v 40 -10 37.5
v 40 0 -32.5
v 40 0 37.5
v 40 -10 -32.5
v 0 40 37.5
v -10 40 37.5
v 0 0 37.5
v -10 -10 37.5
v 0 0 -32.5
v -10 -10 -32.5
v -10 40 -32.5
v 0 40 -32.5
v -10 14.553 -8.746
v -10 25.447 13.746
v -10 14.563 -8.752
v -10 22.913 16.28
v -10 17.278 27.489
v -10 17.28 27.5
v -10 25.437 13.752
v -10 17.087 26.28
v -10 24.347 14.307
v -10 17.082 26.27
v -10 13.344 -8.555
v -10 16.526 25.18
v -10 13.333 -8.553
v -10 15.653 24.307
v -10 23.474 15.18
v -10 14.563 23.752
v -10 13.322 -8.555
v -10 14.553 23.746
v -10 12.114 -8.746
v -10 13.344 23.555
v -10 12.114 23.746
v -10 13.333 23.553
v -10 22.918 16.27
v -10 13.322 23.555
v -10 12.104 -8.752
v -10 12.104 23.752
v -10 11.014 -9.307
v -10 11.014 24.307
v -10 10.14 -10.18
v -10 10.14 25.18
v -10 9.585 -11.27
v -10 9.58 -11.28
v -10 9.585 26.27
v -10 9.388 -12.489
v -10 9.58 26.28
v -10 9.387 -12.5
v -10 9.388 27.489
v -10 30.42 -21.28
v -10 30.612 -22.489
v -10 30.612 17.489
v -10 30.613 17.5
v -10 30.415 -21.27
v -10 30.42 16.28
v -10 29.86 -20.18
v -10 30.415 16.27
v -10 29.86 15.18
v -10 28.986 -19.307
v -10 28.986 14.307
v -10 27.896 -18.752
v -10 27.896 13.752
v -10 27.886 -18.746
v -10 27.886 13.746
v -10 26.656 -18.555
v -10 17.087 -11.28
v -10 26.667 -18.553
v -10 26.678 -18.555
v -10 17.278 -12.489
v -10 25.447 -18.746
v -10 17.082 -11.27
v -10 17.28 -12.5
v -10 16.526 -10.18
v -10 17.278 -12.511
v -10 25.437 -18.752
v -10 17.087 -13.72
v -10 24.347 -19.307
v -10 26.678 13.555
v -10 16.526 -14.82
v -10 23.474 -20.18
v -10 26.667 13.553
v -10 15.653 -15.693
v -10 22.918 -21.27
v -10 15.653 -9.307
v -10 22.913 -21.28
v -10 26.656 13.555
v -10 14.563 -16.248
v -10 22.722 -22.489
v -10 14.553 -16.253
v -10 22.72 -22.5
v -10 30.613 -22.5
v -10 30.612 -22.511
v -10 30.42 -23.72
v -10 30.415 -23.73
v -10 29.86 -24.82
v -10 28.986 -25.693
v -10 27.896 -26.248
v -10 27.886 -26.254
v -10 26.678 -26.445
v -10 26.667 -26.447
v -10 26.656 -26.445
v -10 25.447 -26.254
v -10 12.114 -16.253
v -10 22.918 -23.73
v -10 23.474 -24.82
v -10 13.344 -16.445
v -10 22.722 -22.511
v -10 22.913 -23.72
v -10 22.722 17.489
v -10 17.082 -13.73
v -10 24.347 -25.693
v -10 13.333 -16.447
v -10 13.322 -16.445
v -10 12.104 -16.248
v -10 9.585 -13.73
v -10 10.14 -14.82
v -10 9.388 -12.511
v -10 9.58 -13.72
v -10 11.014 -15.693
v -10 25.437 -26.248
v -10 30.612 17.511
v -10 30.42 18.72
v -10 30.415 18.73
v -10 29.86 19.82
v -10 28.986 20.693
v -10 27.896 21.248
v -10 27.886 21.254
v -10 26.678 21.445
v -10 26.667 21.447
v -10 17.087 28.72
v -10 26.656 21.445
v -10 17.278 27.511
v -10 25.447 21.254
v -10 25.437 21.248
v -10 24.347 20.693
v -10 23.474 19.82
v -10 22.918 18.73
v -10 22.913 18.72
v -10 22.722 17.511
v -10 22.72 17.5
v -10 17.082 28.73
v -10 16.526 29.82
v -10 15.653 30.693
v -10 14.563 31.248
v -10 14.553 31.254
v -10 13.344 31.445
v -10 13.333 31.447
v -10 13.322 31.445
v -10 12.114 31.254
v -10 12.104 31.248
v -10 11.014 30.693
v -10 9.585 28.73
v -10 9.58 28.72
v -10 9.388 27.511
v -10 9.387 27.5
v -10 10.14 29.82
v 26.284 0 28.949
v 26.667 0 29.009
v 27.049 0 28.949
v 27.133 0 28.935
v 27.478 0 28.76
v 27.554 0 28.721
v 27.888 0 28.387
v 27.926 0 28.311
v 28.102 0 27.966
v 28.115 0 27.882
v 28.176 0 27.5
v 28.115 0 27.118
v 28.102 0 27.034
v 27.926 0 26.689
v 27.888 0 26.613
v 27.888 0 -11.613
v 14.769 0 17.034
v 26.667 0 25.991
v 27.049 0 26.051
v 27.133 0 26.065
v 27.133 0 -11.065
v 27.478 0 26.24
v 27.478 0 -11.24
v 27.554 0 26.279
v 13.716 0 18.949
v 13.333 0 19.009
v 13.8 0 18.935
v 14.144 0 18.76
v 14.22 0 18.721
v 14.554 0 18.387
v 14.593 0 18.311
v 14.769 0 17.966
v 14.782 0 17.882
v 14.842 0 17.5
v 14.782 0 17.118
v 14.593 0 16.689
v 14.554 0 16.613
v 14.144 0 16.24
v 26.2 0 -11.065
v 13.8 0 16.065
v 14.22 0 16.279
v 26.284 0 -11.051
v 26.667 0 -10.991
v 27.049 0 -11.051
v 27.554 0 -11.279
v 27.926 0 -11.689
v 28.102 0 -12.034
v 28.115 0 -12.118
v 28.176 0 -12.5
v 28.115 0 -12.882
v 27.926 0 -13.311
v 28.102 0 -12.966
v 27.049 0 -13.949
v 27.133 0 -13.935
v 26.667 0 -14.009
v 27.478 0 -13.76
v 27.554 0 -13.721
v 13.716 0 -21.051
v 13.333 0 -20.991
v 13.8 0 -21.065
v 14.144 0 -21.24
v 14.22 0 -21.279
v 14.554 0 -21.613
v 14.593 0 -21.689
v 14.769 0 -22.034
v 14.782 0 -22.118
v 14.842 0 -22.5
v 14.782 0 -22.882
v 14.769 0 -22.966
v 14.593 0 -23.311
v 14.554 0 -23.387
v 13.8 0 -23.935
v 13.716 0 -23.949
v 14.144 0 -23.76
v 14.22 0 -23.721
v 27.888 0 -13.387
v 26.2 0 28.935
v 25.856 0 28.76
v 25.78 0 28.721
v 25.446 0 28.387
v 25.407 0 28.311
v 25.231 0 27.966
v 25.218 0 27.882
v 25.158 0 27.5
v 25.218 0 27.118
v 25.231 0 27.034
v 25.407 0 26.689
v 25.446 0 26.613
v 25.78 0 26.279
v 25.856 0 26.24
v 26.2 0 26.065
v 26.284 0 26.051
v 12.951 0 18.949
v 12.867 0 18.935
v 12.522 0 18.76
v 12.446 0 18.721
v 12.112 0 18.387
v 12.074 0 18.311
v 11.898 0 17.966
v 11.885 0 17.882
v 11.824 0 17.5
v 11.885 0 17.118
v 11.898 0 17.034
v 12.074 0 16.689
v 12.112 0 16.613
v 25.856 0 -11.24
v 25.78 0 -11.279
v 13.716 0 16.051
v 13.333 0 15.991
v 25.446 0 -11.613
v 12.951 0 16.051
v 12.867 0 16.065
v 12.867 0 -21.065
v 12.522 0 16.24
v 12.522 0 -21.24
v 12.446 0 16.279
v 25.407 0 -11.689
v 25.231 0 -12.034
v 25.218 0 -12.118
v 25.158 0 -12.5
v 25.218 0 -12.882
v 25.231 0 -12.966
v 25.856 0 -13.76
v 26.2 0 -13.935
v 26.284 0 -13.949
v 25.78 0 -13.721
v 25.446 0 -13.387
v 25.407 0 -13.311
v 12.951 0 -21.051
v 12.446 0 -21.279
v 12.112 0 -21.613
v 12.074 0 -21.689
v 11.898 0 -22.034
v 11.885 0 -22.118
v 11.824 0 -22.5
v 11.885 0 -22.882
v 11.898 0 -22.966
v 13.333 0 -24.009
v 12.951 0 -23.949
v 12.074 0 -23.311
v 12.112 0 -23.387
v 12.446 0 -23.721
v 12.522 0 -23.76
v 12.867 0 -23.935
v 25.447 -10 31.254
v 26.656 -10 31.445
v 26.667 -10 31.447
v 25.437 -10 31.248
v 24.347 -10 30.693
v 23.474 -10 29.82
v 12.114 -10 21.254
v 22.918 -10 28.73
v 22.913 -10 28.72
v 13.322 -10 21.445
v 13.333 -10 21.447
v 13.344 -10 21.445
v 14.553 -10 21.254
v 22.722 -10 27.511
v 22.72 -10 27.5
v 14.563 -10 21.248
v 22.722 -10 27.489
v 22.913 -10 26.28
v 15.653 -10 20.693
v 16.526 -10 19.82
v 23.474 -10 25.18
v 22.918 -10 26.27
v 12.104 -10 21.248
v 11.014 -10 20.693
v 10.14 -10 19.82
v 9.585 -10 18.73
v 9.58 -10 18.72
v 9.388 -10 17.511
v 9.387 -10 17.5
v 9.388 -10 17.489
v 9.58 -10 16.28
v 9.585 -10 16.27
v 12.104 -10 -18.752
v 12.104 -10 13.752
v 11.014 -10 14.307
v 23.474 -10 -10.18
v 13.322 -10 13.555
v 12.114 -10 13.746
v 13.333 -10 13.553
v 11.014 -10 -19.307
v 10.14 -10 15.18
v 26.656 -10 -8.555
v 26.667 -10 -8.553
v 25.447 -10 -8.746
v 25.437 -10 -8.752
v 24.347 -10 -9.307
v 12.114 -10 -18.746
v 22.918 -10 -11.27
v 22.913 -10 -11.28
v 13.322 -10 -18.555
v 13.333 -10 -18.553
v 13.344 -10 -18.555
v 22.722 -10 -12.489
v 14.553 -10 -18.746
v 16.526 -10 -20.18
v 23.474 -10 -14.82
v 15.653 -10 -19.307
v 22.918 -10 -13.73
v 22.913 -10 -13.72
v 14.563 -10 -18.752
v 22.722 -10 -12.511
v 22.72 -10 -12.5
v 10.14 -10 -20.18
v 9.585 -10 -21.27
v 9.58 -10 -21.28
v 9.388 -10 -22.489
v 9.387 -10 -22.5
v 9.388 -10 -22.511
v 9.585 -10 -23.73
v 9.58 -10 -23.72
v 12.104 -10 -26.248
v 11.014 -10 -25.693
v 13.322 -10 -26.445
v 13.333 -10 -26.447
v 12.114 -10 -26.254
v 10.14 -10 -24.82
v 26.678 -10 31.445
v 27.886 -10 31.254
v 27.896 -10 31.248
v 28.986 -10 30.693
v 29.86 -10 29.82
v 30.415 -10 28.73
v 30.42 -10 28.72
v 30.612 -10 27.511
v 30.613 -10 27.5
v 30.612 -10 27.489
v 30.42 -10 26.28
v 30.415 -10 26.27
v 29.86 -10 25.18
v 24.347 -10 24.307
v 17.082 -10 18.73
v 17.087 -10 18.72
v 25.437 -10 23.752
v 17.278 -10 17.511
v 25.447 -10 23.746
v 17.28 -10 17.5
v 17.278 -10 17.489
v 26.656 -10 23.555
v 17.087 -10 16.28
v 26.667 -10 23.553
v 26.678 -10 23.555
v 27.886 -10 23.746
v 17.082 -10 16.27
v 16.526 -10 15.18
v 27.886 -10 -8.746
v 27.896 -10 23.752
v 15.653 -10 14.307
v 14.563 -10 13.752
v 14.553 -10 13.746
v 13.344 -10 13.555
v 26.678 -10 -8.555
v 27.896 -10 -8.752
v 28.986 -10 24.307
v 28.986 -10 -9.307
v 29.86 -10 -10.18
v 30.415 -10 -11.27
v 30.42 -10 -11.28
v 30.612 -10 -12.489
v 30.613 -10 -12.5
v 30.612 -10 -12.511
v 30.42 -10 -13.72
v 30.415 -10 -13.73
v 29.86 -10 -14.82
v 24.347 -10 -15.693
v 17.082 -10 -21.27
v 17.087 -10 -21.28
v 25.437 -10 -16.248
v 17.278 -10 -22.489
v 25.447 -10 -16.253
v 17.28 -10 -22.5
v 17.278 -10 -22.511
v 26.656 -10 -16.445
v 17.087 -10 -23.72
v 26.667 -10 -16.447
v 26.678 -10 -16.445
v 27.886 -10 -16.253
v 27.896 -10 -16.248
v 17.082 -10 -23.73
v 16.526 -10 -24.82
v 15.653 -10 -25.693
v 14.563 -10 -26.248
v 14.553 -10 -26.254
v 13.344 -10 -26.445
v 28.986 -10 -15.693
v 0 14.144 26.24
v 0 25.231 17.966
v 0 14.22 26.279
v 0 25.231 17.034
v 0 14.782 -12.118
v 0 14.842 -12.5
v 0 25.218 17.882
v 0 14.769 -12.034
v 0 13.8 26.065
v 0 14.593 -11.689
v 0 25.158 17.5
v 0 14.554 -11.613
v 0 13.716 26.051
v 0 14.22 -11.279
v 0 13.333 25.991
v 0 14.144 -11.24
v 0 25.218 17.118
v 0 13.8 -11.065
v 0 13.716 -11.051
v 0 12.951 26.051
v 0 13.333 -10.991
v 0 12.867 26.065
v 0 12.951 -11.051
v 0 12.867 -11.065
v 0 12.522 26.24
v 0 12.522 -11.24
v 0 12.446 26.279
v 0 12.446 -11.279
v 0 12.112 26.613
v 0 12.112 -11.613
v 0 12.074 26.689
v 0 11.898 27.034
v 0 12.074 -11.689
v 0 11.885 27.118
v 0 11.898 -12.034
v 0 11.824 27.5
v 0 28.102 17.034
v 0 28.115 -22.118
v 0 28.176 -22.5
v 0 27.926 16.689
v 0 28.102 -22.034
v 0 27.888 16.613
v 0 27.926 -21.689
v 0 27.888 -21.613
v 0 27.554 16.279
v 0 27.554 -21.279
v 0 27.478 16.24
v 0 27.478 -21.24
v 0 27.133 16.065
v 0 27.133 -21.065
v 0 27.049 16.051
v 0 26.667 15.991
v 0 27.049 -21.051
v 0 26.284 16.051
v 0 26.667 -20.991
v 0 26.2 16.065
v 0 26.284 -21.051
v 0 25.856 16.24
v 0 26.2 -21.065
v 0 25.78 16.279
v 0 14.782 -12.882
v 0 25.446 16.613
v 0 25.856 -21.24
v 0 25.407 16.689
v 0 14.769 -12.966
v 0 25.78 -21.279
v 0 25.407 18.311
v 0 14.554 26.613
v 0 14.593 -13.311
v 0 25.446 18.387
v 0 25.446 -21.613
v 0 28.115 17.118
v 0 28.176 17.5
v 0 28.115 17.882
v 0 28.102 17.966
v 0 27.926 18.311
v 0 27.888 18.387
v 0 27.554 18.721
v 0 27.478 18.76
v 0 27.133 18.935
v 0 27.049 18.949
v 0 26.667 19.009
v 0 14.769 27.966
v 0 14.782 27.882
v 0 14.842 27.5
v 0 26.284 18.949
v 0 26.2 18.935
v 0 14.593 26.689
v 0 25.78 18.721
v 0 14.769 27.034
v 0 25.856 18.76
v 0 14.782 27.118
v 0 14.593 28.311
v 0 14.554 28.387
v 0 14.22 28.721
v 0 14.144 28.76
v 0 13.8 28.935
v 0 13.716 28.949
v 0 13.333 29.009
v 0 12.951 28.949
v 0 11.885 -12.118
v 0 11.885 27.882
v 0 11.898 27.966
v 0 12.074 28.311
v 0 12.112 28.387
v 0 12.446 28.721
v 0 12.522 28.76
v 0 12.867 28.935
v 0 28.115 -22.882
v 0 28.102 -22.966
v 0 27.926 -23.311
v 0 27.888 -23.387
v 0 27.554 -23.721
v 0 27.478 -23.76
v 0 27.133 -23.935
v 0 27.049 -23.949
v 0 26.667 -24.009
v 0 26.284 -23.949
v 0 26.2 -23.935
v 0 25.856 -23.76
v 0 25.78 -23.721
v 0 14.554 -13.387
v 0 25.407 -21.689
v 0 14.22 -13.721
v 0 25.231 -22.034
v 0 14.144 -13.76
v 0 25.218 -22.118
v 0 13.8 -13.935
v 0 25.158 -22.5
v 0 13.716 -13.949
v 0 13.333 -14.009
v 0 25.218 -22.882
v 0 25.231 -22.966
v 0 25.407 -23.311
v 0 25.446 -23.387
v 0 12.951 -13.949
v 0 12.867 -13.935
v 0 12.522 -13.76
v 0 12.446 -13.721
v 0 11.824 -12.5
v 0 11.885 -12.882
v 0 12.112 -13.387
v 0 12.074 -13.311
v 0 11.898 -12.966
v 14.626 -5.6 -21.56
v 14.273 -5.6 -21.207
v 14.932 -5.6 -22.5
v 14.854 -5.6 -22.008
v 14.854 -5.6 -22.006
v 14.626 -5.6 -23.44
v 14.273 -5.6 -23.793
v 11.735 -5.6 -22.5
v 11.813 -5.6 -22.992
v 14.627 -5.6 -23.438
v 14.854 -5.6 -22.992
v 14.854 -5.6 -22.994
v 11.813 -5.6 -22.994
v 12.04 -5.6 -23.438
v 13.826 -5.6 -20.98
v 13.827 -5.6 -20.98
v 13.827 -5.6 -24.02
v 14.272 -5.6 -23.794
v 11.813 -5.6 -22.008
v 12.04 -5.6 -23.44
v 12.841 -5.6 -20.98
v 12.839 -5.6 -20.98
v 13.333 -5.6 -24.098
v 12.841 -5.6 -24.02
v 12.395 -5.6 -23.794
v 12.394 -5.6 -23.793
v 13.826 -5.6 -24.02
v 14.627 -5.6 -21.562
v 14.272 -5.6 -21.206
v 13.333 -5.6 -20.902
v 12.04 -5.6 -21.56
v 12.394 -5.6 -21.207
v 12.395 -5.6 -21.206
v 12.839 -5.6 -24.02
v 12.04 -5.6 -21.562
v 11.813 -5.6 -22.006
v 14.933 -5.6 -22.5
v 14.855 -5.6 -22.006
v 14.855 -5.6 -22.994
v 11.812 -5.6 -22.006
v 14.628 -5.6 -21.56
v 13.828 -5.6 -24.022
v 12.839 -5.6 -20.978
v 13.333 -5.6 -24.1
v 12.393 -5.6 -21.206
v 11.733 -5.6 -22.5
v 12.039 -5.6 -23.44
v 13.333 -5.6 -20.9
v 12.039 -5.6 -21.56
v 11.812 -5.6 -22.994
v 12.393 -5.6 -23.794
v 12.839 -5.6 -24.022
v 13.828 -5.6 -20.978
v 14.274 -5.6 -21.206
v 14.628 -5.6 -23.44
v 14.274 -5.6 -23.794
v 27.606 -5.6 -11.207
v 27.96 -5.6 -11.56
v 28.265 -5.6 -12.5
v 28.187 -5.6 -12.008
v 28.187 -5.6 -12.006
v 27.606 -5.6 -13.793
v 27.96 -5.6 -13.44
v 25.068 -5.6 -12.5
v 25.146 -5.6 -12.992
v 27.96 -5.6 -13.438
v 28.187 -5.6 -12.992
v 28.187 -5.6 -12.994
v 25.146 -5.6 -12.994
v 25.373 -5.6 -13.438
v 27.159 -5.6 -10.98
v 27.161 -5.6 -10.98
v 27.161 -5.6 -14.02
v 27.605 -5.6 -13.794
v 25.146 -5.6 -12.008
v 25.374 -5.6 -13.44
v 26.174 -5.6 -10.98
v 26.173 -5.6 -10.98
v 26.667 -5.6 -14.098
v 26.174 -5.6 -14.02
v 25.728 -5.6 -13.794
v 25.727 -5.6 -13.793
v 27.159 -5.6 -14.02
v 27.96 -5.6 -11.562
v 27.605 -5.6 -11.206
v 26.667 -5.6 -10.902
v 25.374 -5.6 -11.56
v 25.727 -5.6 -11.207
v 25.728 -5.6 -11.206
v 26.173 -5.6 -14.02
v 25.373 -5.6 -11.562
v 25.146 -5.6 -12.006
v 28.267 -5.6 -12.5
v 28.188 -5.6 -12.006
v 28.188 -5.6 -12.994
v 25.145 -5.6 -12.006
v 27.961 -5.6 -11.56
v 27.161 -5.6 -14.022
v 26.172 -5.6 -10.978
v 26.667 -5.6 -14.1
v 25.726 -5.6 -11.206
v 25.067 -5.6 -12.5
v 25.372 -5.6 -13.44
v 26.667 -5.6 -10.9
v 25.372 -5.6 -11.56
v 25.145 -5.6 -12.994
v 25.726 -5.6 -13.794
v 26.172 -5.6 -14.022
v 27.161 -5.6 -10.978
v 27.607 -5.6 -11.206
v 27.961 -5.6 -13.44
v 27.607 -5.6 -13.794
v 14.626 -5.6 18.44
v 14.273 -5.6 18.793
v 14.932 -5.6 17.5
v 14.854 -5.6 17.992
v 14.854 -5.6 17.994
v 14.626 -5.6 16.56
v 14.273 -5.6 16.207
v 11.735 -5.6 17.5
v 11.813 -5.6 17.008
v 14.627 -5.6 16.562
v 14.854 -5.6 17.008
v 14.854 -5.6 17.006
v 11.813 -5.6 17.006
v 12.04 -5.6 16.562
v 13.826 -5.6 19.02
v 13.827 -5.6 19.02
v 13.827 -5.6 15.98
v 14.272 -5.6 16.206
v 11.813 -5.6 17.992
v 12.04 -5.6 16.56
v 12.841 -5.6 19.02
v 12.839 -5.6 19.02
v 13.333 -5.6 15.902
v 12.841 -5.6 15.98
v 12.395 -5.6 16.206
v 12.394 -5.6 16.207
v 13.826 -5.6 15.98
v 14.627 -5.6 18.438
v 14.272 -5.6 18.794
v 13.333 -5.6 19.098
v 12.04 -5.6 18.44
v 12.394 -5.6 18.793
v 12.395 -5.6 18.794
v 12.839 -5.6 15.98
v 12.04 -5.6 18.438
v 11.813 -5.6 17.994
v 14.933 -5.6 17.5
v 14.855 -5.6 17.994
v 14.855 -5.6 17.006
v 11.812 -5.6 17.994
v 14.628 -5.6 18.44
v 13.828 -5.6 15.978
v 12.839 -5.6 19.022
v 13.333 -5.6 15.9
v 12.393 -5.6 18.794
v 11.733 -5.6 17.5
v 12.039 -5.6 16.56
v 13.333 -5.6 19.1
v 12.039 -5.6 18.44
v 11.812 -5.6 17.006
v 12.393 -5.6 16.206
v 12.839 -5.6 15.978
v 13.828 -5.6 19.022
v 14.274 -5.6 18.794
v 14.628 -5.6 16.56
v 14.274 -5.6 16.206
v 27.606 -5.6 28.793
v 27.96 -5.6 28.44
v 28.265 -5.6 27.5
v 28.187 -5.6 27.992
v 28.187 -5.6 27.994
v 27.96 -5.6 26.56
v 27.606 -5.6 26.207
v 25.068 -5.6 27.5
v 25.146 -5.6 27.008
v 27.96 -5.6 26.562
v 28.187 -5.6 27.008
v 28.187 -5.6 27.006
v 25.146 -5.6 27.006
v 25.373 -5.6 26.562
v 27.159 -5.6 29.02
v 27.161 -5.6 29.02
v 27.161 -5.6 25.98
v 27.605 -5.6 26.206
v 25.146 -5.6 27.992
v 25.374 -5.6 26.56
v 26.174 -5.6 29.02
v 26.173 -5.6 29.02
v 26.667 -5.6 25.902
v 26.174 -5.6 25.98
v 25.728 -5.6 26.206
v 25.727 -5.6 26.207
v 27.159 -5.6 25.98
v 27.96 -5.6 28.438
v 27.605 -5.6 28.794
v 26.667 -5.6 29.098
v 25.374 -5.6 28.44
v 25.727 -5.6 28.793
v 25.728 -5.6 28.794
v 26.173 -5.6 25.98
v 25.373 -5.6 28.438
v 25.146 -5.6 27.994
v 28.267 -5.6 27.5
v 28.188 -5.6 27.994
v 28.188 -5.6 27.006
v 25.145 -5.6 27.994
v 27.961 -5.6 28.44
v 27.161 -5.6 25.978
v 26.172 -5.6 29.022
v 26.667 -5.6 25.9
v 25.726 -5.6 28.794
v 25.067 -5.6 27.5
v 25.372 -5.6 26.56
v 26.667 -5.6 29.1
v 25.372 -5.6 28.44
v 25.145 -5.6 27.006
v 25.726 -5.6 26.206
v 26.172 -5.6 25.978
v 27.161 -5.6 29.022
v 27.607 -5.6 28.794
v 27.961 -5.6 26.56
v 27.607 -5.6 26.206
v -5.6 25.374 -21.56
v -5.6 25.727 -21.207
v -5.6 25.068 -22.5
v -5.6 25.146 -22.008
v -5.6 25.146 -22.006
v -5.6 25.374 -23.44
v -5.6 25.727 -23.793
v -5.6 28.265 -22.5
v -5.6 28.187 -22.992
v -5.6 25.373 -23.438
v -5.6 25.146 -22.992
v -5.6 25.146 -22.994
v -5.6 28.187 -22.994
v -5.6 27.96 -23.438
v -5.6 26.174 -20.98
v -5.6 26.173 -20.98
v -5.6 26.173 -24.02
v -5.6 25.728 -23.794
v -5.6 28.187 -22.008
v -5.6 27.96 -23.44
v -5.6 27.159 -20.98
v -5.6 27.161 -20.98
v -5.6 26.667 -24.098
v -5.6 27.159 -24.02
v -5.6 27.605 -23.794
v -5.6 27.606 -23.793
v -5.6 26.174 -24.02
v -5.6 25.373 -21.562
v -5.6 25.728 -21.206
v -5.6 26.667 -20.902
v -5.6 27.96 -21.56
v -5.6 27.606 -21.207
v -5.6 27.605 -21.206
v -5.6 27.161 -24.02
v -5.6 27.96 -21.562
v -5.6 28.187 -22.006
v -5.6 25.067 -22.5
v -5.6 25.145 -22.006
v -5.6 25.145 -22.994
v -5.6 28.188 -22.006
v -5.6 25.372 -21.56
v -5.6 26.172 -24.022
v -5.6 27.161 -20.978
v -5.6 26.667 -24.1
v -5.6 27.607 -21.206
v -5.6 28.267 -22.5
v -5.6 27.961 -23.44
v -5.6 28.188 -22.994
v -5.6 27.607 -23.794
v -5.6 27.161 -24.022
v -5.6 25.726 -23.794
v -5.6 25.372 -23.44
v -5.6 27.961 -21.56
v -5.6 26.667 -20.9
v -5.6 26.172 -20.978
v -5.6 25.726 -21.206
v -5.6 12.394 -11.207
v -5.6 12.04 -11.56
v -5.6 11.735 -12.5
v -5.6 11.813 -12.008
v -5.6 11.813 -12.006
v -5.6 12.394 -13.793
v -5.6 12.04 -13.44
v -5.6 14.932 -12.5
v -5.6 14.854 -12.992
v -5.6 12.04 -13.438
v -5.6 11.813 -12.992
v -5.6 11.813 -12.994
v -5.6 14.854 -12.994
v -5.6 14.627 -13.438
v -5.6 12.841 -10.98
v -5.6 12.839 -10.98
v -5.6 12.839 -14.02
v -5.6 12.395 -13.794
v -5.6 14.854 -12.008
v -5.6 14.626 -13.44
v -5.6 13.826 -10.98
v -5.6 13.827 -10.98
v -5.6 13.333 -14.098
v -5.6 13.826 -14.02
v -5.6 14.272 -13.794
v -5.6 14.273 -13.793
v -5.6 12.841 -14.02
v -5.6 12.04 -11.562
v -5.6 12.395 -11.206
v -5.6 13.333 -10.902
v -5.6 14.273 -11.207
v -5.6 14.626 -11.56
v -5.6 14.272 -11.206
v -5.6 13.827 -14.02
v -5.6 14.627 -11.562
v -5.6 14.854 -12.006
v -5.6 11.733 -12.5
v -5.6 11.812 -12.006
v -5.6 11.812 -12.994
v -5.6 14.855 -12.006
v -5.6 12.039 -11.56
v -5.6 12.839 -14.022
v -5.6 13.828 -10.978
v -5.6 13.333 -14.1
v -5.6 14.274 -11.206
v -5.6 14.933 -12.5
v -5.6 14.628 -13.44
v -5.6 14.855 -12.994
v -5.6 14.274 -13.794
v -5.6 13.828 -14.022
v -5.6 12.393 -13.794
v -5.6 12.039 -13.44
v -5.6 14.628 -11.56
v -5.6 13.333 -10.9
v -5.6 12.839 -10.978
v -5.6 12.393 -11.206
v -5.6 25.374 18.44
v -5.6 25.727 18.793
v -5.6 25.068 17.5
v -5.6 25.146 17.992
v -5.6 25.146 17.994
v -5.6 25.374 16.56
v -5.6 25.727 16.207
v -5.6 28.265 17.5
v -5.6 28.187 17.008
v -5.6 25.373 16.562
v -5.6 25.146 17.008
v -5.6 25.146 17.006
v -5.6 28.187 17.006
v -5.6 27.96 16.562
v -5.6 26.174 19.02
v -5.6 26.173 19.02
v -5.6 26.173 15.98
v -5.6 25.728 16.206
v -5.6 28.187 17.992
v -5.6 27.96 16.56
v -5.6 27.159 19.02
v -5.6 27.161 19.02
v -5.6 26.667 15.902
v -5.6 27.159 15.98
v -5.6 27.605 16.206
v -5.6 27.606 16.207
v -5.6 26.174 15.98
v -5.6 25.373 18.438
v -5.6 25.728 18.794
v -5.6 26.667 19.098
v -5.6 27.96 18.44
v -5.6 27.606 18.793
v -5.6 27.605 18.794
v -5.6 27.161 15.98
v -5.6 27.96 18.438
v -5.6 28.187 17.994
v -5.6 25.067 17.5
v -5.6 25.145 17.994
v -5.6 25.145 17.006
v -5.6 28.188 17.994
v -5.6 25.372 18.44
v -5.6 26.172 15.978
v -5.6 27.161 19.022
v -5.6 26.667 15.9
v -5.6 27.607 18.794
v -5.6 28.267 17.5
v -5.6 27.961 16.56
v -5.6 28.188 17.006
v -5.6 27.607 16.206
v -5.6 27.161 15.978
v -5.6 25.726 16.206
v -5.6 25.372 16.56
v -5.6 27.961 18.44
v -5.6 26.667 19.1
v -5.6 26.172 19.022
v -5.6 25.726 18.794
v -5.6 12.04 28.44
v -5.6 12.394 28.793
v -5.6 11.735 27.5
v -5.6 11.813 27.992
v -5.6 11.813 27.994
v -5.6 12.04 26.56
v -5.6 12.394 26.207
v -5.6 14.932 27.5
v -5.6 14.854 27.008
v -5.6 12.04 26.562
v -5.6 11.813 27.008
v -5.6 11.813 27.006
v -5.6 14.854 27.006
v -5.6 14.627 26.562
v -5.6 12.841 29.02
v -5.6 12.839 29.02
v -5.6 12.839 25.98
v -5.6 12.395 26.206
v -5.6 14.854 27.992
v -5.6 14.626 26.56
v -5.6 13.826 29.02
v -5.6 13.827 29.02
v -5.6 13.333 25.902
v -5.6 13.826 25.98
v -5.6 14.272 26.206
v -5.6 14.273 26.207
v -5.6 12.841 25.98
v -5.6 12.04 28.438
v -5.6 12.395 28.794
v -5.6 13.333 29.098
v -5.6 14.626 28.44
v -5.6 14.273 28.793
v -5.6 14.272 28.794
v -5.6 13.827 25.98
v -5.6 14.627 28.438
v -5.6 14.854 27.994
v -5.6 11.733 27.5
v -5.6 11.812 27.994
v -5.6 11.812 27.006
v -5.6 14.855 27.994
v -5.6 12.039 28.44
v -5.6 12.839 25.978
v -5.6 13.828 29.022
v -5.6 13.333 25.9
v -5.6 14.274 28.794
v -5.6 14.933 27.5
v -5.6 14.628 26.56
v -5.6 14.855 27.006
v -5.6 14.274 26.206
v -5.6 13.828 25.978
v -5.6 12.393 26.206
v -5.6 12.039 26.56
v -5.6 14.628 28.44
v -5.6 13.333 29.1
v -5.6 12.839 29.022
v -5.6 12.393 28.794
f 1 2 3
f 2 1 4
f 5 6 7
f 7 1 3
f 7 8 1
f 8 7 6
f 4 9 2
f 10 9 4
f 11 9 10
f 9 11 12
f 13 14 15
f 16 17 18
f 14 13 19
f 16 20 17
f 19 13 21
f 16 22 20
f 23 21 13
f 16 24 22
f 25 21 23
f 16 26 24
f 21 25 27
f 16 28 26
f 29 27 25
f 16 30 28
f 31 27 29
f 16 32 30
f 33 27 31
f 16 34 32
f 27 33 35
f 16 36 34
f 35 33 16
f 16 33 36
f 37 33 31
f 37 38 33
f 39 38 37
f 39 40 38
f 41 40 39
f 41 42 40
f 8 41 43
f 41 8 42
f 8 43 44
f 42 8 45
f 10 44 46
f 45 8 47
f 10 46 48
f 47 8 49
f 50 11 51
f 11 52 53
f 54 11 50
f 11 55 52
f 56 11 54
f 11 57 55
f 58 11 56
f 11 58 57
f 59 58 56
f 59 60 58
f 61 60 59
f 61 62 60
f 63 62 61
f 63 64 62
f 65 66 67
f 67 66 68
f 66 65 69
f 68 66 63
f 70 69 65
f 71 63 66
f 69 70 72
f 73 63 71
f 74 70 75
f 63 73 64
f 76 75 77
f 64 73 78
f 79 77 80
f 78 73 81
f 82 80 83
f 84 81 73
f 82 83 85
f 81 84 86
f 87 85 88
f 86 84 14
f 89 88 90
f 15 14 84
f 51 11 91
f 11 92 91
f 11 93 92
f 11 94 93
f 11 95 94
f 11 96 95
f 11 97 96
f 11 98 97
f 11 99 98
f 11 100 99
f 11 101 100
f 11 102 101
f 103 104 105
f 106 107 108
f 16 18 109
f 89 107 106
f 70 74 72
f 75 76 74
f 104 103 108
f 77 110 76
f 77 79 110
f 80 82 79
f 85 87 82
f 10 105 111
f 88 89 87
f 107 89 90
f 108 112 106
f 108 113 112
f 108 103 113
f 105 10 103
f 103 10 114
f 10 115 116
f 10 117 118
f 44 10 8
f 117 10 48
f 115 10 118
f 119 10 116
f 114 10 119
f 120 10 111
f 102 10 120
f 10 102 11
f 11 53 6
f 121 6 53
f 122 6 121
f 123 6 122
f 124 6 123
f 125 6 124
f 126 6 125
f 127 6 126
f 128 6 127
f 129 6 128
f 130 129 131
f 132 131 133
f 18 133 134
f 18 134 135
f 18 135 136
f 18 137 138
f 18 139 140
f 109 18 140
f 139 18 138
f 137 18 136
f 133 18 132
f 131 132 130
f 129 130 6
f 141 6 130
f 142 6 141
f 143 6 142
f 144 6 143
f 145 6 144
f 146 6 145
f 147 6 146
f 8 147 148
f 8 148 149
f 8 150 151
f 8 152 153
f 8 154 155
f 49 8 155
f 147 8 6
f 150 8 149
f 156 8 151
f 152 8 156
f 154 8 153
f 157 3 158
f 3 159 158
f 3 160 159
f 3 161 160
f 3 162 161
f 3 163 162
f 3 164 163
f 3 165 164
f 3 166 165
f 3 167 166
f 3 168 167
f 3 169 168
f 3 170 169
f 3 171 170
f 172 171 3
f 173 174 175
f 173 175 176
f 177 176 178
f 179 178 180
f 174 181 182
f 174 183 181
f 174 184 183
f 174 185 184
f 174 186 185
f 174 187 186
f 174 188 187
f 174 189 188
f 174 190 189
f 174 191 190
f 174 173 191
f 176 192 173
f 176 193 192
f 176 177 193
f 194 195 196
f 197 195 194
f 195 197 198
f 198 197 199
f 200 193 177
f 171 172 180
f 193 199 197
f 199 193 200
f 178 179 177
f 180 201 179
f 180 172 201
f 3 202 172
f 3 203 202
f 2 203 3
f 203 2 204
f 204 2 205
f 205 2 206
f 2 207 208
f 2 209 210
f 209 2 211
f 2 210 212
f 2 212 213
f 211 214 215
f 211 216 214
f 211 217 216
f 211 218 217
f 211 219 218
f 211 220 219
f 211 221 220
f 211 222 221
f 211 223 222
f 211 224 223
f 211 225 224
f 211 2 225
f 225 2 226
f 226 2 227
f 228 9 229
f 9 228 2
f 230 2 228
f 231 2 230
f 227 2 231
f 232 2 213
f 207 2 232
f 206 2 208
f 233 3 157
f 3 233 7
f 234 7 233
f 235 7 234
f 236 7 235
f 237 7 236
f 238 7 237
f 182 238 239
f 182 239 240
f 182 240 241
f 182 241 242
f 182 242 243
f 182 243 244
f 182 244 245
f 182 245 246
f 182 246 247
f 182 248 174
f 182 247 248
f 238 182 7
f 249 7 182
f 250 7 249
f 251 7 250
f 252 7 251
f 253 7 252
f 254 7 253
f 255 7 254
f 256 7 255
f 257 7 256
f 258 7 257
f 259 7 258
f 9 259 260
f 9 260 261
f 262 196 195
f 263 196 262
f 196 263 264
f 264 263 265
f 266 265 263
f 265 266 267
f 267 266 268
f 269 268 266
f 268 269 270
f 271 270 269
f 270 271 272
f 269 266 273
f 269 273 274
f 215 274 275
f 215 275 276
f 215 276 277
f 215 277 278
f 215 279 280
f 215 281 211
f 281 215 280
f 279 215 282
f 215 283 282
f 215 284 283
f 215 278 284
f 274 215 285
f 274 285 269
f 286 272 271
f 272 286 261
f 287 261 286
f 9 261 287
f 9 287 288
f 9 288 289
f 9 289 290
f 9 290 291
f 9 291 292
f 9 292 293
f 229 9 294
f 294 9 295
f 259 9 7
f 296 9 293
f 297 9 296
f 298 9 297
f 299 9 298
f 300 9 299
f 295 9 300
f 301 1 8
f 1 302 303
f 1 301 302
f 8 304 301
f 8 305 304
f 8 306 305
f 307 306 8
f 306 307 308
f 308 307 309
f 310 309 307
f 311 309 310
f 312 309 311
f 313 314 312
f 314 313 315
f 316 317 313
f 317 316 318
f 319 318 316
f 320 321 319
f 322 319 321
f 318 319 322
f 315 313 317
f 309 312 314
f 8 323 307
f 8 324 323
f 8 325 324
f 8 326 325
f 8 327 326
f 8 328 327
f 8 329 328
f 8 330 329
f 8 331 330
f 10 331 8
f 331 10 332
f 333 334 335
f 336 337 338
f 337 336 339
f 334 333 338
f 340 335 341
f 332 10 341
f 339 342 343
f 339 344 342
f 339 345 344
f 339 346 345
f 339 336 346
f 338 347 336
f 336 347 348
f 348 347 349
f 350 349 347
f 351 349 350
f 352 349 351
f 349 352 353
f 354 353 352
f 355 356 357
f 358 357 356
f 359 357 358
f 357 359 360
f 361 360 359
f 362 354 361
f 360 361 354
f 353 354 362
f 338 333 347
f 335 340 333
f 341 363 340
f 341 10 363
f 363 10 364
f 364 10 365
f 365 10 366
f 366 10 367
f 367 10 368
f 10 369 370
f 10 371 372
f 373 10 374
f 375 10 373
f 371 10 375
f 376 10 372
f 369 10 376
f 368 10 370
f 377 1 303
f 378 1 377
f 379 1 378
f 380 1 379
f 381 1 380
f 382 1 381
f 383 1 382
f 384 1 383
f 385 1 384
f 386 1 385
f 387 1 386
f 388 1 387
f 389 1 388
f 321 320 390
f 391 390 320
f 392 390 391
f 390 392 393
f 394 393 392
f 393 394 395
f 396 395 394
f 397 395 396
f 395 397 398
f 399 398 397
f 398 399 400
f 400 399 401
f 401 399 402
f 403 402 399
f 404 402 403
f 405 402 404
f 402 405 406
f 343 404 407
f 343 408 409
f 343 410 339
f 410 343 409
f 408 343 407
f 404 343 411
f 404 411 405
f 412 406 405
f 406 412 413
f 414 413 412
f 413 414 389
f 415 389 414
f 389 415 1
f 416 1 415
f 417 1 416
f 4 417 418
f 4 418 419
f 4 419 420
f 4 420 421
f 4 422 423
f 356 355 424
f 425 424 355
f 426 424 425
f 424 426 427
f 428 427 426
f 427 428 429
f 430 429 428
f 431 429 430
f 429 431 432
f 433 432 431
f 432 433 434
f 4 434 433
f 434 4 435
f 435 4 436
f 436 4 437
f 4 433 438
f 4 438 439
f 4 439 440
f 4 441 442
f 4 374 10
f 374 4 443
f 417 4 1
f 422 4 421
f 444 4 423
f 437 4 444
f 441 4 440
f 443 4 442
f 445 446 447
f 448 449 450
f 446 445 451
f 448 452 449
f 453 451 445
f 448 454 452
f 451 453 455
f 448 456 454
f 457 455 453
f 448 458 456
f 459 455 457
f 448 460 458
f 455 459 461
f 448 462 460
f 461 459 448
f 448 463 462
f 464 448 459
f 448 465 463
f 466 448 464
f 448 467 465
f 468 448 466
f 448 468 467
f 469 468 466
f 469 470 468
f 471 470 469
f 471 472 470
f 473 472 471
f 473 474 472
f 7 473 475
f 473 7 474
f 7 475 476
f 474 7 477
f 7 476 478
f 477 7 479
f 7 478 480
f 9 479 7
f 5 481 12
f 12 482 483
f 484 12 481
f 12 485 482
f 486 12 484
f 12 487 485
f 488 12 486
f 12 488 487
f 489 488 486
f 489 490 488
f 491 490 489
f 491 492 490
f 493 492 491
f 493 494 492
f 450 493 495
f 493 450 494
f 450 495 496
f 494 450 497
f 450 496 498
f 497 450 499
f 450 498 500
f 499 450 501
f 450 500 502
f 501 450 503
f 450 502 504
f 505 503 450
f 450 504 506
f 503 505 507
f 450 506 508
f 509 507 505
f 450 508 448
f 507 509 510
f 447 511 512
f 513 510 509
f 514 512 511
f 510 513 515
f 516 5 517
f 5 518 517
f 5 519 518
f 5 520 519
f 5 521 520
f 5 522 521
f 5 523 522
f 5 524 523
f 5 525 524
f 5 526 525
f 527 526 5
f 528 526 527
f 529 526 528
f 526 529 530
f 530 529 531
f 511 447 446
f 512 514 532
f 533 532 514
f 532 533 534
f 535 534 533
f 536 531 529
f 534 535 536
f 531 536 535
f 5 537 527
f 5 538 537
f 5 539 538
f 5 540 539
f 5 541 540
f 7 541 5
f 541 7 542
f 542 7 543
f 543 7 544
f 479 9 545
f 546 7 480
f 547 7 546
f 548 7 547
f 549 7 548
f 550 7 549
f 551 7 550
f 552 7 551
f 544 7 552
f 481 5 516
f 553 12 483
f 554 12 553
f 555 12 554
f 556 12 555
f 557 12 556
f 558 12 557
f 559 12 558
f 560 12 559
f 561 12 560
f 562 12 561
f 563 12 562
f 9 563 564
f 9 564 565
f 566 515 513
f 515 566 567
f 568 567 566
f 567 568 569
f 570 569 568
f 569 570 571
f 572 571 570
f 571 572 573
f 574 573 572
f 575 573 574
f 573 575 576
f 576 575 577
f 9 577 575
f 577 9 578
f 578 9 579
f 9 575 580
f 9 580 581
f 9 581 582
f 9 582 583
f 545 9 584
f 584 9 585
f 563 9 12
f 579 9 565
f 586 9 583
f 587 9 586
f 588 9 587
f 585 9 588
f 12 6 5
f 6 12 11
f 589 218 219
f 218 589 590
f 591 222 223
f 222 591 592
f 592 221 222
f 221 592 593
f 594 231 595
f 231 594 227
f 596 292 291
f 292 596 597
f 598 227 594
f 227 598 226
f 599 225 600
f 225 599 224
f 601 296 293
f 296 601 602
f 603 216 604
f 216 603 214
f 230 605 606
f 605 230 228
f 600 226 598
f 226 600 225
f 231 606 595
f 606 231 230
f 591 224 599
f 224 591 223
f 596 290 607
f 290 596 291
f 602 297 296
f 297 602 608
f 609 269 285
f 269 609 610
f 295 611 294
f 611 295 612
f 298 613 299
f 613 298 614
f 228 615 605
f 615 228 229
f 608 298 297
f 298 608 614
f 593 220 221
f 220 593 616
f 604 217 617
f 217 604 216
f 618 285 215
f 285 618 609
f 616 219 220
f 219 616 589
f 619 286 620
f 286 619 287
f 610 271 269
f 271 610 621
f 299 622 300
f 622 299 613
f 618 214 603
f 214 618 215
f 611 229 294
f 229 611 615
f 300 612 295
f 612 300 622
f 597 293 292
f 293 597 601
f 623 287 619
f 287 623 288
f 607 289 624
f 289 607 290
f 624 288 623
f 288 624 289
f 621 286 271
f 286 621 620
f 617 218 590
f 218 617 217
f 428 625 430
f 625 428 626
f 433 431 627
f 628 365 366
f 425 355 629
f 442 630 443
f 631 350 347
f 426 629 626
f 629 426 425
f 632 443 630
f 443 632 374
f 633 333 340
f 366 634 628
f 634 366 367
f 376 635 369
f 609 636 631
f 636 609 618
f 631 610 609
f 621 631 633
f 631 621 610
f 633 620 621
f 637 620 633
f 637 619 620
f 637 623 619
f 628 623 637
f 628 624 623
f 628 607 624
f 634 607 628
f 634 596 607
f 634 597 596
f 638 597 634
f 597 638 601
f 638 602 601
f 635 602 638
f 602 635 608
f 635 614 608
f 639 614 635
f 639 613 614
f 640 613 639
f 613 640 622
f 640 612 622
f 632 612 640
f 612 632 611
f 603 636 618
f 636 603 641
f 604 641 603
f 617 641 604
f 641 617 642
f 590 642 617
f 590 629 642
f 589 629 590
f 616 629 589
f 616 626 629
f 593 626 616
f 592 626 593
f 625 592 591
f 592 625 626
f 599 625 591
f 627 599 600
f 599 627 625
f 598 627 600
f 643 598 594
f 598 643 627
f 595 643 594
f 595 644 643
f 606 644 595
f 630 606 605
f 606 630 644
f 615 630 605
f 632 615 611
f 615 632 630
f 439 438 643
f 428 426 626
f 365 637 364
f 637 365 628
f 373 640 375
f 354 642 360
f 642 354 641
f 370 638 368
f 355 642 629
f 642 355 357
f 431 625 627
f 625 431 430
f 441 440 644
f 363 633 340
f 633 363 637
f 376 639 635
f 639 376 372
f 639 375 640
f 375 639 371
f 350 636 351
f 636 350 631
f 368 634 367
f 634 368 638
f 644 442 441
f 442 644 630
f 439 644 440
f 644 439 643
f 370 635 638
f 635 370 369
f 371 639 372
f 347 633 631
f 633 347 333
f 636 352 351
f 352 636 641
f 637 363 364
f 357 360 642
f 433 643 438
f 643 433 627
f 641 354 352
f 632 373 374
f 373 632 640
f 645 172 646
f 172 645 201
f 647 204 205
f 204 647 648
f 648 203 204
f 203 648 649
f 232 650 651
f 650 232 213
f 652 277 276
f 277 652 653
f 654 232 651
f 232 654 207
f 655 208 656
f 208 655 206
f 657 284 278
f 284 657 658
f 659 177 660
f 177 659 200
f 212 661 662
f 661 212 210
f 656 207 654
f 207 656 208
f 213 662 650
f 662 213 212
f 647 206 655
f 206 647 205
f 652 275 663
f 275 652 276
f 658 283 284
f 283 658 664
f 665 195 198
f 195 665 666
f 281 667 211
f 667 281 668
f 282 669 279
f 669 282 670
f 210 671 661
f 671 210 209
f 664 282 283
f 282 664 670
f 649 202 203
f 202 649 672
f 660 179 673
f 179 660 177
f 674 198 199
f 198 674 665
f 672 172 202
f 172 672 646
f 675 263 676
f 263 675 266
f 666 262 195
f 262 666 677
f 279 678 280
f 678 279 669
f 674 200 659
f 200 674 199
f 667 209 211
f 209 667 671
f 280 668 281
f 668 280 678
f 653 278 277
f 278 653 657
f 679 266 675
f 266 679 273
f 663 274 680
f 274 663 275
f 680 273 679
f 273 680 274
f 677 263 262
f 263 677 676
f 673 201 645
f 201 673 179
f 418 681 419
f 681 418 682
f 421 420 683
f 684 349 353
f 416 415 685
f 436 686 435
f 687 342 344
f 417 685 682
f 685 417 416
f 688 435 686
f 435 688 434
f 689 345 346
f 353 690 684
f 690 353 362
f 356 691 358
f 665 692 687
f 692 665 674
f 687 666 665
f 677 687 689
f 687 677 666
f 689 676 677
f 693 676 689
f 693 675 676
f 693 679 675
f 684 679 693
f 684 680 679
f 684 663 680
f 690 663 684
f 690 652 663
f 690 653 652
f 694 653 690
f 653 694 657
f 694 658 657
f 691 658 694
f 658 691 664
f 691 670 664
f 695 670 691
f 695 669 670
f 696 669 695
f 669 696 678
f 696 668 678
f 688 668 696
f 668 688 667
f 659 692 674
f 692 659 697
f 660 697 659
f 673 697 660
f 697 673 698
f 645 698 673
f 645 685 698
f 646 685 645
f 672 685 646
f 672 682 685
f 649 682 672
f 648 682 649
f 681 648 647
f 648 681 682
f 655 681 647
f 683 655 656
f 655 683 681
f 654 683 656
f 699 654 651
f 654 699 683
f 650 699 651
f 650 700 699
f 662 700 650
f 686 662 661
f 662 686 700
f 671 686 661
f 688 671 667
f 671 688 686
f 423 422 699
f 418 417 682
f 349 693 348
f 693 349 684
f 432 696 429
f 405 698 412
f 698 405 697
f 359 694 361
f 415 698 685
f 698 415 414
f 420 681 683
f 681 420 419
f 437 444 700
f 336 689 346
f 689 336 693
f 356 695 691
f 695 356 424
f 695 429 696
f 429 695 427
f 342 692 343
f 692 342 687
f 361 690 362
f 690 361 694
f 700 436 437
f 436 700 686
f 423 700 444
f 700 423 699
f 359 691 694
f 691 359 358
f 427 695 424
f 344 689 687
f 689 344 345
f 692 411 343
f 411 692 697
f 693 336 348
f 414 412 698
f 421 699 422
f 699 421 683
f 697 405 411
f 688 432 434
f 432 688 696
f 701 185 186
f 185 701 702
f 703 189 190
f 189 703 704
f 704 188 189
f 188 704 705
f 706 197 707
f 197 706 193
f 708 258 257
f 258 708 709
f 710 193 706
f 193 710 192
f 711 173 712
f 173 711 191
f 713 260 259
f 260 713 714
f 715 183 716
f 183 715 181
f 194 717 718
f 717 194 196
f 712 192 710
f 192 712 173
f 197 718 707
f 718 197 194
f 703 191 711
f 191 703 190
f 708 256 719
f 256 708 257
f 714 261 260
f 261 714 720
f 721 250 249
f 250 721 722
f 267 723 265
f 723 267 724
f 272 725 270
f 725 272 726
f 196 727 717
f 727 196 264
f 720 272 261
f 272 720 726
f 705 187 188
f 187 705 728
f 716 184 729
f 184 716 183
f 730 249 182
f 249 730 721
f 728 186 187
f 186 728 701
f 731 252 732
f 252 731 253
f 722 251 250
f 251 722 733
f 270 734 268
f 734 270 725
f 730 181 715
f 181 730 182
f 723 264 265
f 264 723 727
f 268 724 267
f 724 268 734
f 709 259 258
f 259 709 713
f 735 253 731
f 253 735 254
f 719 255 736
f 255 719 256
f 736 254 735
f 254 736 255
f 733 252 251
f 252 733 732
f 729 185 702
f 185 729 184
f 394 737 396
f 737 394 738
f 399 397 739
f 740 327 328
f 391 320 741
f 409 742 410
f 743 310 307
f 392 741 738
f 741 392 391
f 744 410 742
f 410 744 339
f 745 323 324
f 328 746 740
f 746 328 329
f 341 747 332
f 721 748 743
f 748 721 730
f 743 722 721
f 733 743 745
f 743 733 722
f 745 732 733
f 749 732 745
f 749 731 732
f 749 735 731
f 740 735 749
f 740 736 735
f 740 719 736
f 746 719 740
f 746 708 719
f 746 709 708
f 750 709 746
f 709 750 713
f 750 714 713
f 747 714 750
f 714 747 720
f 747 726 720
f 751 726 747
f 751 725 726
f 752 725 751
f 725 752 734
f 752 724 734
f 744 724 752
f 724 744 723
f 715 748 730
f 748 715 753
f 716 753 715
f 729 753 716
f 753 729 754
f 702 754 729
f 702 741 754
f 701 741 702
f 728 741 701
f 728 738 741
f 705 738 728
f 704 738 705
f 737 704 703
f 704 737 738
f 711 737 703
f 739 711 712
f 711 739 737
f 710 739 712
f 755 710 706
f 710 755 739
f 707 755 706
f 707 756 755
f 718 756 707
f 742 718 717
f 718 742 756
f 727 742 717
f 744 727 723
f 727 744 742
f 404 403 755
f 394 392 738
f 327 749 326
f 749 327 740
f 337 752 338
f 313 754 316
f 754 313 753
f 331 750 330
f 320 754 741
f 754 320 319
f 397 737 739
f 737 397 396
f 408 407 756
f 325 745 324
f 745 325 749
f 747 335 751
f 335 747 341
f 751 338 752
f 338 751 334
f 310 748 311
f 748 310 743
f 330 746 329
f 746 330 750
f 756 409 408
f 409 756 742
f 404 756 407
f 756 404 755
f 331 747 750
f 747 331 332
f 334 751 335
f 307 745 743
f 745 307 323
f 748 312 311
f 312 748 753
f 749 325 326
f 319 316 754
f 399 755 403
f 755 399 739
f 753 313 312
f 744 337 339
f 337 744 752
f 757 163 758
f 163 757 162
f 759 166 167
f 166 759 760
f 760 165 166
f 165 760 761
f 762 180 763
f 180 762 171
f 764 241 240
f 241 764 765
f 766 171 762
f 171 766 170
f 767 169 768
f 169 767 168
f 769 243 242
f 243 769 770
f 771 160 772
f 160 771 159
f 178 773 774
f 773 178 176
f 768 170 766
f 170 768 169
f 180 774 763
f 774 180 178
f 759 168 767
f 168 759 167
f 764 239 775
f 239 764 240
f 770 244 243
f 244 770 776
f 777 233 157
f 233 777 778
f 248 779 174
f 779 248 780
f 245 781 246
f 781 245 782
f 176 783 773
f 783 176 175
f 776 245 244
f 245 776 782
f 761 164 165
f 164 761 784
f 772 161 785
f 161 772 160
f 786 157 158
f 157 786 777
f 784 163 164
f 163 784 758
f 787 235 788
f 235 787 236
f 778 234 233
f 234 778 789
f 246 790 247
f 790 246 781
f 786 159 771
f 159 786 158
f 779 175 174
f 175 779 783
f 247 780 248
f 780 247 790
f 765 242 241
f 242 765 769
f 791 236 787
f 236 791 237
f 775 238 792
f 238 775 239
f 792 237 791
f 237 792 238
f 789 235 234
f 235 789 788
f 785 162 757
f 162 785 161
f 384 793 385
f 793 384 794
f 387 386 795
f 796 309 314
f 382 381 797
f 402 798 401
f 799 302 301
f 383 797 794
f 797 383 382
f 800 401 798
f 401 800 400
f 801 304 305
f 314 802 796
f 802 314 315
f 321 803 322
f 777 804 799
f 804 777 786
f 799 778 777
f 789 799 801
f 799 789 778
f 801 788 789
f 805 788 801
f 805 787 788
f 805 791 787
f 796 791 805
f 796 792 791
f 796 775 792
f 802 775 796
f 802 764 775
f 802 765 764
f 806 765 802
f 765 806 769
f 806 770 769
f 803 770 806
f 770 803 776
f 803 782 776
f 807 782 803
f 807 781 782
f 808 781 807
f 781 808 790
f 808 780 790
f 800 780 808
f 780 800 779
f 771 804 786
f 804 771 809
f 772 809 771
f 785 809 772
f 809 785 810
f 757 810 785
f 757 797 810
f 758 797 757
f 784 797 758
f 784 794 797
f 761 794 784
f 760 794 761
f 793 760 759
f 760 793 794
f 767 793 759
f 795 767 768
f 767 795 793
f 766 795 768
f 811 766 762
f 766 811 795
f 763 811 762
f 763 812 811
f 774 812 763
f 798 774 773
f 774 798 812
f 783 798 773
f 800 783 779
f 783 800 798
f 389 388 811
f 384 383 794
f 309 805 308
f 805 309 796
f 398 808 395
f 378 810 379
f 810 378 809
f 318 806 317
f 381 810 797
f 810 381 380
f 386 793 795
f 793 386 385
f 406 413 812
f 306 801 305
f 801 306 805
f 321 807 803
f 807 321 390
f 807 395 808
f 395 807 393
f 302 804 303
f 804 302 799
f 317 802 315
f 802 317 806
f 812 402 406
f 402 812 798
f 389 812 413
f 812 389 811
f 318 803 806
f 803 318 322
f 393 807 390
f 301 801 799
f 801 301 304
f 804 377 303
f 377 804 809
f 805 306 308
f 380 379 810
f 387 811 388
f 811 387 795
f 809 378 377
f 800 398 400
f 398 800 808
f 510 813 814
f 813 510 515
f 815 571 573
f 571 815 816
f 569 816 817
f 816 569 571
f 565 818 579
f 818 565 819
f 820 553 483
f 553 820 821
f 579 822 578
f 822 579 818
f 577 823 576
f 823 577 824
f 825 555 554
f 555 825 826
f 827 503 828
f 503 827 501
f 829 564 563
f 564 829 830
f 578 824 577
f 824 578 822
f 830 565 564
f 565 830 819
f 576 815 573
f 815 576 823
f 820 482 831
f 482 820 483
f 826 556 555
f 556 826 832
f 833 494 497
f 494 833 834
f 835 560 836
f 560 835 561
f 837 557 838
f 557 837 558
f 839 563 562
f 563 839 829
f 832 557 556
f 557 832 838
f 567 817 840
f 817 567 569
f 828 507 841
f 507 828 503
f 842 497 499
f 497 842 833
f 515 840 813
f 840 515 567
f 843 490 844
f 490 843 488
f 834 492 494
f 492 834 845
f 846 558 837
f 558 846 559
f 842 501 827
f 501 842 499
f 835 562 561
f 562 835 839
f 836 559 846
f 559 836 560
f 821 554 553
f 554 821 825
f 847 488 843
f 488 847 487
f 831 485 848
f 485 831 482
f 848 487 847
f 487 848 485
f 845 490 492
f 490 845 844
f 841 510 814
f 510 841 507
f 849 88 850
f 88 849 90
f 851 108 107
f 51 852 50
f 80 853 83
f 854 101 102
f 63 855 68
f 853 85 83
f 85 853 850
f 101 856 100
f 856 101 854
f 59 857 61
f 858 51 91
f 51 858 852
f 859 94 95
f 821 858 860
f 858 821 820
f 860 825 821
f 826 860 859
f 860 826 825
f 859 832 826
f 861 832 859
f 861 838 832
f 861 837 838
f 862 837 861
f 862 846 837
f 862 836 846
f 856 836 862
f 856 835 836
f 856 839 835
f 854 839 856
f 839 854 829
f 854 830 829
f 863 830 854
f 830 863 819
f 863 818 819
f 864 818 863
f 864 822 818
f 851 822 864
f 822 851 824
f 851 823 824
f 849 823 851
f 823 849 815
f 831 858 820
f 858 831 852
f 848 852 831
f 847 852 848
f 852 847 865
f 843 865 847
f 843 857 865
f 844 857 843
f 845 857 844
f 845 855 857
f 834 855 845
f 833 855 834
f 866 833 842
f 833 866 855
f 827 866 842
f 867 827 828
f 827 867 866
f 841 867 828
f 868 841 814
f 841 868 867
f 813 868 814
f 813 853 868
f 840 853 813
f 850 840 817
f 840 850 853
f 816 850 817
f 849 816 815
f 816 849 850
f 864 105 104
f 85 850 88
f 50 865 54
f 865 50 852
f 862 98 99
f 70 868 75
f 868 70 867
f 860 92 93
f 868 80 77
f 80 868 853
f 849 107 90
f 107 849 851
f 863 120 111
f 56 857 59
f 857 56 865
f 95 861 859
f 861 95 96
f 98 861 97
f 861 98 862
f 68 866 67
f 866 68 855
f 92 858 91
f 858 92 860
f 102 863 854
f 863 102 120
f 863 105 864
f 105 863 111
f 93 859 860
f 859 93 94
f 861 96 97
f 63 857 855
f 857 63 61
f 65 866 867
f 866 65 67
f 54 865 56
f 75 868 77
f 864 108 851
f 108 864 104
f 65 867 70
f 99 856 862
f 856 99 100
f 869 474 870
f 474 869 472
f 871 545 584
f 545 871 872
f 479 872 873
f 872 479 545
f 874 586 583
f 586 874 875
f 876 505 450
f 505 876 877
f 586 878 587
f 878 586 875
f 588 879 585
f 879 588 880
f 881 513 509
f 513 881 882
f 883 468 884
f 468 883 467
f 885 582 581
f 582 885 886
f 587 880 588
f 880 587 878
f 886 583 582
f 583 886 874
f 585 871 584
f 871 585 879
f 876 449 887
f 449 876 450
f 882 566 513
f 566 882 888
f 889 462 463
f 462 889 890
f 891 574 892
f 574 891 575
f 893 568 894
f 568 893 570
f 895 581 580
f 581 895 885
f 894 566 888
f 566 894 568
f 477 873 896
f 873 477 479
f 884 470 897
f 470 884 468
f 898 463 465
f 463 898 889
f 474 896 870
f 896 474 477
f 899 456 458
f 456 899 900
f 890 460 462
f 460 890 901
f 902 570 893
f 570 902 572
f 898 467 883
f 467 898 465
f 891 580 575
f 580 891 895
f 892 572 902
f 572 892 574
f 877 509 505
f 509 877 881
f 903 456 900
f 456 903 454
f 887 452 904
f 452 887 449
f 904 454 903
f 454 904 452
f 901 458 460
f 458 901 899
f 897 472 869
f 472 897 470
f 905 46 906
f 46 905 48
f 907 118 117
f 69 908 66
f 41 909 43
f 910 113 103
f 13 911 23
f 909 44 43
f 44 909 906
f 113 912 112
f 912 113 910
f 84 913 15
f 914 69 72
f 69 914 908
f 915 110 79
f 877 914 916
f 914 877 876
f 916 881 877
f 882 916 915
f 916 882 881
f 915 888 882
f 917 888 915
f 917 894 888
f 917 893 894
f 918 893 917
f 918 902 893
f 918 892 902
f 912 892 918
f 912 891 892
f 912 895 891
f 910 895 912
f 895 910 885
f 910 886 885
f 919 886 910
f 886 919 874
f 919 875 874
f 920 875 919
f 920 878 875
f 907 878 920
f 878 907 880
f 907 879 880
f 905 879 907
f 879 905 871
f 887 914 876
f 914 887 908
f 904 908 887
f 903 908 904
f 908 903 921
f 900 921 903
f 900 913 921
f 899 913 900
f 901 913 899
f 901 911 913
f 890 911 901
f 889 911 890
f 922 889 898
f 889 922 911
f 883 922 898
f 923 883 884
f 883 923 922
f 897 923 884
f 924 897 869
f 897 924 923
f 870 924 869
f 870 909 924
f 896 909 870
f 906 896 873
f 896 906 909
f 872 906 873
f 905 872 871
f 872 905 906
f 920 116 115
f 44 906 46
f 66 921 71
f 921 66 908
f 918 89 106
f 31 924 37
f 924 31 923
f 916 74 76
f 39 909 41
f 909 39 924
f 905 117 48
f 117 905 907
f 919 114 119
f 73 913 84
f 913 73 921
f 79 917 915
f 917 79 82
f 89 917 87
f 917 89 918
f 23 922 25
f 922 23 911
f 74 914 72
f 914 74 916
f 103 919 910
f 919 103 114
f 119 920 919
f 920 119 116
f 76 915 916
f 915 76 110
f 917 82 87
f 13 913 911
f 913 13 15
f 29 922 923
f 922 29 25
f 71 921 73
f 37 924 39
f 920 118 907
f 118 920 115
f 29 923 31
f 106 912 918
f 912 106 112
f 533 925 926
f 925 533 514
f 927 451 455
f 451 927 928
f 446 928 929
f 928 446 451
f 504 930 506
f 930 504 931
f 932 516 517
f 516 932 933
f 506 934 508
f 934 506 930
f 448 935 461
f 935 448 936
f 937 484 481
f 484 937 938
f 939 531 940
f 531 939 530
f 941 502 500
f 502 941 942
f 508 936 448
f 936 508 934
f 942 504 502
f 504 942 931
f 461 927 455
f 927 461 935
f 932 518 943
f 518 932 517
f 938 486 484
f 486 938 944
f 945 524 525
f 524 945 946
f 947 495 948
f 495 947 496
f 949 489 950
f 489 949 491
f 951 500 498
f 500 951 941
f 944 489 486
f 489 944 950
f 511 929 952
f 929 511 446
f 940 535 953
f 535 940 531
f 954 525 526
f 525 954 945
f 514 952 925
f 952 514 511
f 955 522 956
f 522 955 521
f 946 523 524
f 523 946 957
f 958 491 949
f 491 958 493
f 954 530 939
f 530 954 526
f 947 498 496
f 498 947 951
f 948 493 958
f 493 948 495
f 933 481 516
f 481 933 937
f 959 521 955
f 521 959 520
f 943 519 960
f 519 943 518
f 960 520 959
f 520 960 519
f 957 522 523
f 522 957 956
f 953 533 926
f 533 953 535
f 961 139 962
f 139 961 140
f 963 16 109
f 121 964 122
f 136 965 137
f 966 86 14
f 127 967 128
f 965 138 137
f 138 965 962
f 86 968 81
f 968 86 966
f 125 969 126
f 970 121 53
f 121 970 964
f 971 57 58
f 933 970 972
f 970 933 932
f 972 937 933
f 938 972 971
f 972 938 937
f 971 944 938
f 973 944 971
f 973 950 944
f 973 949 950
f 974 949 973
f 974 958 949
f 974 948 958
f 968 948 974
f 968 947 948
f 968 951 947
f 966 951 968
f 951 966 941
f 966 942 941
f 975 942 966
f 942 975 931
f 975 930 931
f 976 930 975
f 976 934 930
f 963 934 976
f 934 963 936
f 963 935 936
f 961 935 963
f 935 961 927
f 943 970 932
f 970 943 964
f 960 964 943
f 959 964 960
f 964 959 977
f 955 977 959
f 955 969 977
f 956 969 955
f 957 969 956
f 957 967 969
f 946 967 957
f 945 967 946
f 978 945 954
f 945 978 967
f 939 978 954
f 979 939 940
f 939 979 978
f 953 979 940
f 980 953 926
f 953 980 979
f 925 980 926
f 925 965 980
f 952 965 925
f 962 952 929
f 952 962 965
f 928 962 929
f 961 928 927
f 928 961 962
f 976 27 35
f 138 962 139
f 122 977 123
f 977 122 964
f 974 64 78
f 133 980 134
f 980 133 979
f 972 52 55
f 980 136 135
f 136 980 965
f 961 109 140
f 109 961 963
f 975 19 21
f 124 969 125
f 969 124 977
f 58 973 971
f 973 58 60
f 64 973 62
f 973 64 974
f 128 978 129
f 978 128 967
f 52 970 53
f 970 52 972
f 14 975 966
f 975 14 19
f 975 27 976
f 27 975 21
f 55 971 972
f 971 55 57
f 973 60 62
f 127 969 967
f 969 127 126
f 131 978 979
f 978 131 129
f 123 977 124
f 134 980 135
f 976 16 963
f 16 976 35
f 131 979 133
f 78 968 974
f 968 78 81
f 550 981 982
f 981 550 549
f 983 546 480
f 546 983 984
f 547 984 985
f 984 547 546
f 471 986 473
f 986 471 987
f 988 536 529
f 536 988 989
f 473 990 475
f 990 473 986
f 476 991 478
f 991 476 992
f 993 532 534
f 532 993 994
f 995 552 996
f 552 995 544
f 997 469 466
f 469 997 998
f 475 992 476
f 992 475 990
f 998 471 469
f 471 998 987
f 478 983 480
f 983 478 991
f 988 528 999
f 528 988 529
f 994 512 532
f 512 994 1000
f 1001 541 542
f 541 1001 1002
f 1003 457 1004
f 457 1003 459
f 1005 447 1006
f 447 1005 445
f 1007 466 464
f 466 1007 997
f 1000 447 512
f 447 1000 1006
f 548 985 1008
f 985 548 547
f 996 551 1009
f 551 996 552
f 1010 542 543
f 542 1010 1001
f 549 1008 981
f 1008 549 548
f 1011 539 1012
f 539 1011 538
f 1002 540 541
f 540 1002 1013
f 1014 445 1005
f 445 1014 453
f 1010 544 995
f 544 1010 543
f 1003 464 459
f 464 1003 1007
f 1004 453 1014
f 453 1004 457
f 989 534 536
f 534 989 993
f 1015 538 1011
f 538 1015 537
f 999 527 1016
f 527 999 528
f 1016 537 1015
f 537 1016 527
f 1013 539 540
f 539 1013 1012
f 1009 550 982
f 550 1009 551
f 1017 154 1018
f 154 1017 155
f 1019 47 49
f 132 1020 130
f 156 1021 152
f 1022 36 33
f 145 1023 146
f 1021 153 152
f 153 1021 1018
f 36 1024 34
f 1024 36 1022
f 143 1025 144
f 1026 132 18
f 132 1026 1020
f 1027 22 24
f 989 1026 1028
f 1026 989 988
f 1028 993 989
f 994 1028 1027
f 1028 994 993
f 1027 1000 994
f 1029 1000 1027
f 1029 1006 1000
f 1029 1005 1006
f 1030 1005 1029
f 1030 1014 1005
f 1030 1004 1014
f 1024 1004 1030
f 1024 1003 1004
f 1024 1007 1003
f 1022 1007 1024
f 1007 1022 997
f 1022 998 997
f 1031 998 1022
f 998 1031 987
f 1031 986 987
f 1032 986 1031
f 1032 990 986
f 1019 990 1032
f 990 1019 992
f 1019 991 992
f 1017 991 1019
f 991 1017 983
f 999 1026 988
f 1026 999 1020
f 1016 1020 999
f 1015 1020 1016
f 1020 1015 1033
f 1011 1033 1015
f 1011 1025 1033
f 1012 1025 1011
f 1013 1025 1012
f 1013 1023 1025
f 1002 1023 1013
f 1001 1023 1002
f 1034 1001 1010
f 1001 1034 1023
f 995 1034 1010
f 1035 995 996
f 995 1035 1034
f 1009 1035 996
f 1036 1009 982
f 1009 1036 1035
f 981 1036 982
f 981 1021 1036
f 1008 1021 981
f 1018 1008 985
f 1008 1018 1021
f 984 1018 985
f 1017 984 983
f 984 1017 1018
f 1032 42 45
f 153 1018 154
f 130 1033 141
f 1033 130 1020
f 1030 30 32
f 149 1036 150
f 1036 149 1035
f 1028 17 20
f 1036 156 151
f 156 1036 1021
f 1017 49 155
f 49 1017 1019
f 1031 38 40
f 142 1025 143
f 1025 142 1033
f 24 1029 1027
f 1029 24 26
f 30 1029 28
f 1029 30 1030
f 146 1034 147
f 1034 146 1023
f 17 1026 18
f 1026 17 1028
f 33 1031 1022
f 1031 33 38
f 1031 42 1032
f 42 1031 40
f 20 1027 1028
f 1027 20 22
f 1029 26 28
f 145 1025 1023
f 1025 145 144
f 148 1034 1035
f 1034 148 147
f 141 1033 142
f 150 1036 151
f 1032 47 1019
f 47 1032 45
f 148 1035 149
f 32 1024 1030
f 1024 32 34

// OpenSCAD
lack_foot_width = 50;
lack_foot_height = 100;
lack_foot_dist = 5;

bracket_height = 70;
bracket_width = 40;
bracket_wall = 10;

screw_head_length = 4.5;
screw_head_dia_max = 8.0;
screw_head_dia_min = 3.2;
screw_body_dia = 2.4;
screw_body_length = 25;

$fn = 20;

module screw() {
    cylinder(d1 = screw_body_dia, d2 = screw_head_dia_min, h = screw_body_length + 0.1);
    translate([0, 0, screw_body_length])
    cylinder(d1 = screw_head_dia_min, d2 = screw_head_dia_max, h = screw_head_length);
}

module screw_block() {
    translate([bracket_width / 3, screw_body_length + screw_head_length - bracket_wall - 0.1, 10])
    rotate([90, 0, 0])
    screw();
    
    translate([bracket_width * 2 / 3, screw_body_length + screw_head_length - bracket_wall - 0.1, 20])
    rotate([90, 0, 0])
    screw();
}

module bracket_body() {
    translate([-bracket_wall, -bracket_wall, 0])
    cube([bracket_width + bracket_wall, bracket_wall, bracket_height]);
    
    translate([-bracket_wall, 0, 0])
    cube([bracket_wall, bracket_width, bracket_height]);
}

module bracket() {
    difference() {
        bracket_body();
        
        screw_block();
        translate([0, 0, bracket_height / 2 + lack_foot_dist])
        screw_block();
        
        translate([0, bracket_width, 0])
        rotate([0, 0, -90])
        screw_block();
        
        translate([0, bracket_width, bracket_height / 2 + lack_foot_dist])
        rotate([0, 0, -90])
        screw_block();
    }
}

// feet visualization
%translate([0, 0, -lack_foot_height])
cube([lack_foot_width, lack_foot_width, lack_foot_height]);
translate([0, 0, lack_foot_dist])
%cube([lack_foot_width, lack_foot_width, lack_foot_height]);

translate([0, 0, (lack_foot_dist - bracket_height) / 2])
bracket();
